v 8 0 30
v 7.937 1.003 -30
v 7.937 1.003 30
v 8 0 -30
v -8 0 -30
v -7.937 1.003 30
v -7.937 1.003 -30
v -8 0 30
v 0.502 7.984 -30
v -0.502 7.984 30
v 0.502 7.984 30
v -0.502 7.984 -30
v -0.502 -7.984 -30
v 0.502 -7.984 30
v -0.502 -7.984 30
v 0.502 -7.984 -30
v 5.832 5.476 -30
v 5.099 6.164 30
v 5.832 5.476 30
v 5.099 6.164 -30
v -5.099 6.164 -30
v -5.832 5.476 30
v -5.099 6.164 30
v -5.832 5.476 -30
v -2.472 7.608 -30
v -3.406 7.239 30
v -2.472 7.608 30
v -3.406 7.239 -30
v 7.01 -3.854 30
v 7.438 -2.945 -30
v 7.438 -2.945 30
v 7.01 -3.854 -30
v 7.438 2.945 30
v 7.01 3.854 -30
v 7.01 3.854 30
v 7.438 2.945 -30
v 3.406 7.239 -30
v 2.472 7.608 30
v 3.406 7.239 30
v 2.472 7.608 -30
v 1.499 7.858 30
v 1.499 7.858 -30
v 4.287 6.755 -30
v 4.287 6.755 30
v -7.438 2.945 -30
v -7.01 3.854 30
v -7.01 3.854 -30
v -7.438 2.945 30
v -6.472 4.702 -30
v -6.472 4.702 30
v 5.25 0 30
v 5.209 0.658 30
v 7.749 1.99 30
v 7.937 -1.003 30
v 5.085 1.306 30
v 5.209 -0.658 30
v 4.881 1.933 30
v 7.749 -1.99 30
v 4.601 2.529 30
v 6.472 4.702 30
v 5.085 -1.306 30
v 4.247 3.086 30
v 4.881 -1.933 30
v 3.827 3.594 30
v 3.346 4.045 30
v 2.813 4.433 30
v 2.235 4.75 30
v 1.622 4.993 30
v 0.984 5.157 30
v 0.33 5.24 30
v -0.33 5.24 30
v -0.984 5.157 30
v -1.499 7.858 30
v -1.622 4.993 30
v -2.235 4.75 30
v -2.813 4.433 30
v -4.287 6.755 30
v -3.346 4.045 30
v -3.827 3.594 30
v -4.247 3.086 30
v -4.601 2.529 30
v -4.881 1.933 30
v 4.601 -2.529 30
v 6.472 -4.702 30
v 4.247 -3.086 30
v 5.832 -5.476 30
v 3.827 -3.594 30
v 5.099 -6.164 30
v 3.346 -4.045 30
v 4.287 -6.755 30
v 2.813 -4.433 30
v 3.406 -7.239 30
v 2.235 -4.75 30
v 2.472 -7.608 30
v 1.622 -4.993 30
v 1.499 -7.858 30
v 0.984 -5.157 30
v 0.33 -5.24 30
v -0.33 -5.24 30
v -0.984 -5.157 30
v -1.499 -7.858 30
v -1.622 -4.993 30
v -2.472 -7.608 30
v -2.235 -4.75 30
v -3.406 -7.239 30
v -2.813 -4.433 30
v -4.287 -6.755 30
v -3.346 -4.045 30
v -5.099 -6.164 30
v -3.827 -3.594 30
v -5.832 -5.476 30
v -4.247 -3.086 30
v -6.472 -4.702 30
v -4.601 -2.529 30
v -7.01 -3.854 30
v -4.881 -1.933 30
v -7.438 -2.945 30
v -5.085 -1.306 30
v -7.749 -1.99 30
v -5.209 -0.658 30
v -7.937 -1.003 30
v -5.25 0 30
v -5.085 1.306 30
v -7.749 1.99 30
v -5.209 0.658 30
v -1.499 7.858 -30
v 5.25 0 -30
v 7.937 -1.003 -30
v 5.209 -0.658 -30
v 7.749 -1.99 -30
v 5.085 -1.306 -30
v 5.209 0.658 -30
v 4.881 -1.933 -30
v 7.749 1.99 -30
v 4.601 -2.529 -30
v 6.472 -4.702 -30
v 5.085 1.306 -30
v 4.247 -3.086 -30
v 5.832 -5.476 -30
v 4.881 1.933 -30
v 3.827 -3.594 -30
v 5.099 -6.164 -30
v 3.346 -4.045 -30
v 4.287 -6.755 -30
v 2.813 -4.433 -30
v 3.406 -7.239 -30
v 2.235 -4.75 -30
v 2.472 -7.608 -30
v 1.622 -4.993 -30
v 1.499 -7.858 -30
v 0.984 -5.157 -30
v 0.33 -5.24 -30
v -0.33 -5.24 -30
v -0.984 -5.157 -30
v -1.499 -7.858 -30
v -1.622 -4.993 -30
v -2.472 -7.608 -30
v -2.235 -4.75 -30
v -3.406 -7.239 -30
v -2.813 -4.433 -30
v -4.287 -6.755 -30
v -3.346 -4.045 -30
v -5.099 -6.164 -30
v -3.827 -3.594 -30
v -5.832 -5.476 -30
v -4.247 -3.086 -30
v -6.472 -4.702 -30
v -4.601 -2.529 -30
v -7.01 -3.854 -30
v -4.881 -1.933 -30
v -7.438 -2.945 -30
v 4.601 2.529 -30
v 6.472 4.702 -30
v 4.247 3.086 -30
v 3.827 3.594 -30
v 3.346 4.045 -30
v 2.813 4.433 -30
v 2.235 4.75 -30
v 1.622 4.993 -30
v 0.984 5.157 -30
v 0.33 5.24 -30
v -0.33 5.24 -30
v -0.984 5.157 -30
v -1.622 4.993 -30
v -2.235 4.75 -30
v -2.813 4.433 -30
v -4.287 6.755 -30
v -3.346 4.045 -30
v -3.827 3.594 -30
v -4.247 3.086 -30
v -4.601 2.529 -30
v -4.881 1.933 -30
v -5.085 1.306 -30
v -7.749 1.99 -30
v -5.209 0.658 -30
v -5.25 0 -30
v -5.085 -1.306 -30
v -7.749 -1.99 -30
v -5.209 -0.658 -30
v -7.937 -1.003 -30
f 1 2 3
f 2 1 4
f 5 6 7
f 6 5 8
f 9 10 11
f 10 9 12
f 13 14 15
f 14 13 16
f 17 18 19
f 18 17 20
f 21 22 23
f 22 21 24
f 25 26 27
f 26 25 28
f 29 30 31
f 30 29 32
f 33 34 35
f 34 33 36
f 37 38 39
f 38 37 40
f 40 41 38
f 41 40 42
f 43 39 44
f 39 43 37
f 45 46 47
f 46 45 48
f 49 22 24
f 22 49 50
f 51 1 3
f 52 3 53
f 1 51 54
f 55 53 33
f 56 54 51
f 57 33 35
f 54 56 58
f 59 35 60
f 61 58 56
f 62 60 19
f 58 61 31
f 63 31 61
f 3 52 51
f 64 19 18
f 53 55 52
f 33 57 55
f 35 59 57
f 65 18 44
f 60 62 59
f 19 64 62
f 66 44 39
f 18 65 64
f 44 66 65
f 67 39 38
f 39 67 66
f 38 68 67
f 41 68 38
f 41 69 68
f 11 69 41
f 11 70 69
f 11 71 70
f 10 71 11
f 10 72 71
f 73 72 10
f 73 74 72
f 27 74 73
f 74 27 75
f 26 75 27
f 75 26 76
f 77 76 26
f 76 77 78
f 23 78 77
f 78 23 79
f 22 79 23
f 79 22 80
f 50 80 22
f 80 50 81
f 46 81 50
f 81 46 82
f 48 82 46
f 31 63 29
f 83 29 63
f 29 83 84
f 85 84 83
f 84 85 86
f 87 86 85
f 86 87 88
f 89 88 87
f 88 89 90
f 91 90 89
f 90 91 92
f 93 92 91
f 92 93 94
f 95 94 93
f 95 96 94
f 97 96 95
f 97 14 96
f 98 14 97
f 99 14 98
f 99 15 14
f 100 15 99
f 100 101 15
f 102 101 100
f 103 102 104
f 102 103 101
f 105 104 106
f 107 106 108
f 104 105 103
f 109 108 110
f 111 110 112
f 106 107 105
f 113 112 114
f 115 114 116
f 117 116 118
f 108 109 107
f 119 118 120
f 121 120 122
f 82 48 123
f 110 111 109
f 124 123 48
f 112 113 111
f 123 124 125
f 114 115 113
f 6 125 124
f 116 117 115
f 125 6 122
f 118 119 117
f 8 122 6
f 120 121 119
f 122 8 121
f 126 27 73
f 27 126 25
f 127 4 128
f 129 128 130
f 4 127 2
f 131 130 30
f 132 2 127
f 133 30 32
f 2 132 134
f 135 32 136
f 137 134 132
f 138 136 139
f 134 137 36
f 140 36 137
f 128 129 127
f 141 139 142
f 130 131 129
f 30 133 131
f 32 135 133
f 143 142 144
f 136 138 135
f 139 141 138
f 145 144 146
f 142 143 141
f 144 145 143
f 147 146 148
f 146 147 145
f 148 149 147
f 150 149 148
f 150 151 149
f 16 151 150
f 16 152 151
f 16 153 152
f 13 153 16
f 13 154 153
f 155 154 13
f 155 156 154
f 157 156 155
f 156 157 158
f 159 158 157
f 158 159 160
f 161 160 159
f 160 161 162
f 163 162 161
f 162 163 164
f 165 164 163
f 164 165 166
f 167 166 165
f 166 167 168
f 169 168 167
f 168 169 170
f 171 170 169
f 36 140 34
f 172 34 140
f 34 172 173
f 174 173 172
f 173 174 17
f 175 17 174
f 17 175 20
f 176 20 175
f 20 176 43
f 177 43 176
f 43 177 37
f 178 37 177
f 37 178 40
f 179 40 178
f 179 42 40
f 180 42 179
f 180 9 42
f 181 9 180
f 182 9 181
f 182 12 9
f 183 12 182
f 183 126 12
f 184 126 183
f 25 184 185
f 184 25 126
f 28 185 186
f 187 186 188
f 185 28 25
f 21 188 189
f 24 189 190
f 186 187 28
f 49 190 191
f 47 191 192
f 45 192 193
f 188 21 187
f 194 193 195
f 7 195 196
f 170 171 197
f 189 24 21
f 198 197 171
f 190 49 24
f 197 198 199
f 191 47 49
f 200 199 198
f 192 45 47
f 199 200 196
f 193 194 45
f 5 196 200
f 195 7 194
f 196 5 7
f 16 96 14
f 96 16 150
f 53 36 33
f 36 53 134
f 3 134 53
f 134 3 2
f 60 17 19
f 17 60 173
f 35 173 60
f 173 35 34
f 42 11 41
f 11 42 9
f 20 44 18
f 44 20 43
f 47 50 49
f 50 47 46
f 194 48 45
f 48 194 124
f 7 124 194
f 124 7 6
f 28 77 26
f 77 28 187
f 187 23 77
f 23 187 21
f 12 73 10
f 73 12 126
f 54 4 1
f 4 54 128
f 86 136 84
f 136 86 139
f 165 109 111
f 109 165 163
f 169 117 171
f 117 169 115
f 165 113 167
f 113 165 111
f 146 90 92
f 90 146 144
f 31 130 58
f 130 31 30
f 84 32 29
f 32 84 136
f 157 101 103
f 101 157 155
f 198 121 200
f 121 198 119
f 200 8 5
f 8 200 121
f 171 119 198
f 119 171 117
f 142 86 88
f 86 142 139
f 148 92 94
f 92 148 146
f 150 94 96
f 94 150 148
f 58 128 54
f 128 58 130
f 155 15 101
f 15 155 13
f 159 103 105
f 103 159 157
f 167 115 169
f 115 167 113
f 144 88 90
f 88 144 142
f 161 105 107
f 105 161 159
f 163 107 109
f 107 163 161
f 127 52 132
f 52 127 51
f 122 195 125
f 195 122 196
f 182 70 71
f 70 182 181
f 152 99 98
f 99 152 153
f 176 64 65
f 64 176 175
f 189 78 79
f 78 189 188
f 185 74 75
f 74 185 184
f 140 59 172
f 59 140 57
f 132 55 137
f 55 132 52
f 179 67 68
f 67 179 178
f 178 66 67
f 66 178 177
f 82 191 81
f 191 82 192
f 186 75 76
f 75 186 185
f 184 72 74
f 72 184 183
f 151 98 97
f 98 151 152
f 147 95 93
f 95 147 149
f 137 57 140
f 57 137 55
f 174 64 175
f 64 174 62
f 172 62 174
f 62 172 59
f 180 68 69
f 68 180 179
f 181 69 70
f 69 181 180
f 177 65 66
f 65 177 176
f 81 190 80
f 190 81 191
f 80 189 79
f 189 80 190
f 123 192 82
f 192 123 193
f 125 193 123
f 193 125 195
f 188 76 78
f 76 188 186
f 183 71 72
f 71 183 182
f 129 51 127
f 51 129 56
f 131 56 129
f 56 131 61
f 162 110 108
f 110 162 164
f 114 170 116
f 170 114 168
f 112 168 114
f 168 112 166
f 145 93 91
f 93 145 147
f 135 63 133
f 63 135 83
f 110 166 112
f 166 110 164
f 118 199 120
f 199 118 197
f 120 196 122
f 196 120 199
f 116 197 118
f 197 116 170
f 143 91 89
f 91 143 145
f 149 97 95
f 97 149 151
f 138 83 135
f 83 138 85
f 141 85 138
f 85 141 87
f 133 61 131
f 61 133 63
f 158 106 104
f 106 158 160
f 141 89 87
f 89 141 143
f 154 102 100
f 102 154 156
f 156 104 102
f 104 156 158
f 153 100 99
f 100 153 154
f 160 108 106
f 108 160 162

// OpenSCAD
$fn = 50;


difference() {
	union() {
		translate(v = [0, 0, -30.0000000000]) {
			cylinder(h = 60, r = 8.0000000000);
		}
	}
	union() {
		translate(v = [0, 0, -100.0000000000]) {
			cylinder(h = 200, r = 5.2500000000);
		}
	}
}
